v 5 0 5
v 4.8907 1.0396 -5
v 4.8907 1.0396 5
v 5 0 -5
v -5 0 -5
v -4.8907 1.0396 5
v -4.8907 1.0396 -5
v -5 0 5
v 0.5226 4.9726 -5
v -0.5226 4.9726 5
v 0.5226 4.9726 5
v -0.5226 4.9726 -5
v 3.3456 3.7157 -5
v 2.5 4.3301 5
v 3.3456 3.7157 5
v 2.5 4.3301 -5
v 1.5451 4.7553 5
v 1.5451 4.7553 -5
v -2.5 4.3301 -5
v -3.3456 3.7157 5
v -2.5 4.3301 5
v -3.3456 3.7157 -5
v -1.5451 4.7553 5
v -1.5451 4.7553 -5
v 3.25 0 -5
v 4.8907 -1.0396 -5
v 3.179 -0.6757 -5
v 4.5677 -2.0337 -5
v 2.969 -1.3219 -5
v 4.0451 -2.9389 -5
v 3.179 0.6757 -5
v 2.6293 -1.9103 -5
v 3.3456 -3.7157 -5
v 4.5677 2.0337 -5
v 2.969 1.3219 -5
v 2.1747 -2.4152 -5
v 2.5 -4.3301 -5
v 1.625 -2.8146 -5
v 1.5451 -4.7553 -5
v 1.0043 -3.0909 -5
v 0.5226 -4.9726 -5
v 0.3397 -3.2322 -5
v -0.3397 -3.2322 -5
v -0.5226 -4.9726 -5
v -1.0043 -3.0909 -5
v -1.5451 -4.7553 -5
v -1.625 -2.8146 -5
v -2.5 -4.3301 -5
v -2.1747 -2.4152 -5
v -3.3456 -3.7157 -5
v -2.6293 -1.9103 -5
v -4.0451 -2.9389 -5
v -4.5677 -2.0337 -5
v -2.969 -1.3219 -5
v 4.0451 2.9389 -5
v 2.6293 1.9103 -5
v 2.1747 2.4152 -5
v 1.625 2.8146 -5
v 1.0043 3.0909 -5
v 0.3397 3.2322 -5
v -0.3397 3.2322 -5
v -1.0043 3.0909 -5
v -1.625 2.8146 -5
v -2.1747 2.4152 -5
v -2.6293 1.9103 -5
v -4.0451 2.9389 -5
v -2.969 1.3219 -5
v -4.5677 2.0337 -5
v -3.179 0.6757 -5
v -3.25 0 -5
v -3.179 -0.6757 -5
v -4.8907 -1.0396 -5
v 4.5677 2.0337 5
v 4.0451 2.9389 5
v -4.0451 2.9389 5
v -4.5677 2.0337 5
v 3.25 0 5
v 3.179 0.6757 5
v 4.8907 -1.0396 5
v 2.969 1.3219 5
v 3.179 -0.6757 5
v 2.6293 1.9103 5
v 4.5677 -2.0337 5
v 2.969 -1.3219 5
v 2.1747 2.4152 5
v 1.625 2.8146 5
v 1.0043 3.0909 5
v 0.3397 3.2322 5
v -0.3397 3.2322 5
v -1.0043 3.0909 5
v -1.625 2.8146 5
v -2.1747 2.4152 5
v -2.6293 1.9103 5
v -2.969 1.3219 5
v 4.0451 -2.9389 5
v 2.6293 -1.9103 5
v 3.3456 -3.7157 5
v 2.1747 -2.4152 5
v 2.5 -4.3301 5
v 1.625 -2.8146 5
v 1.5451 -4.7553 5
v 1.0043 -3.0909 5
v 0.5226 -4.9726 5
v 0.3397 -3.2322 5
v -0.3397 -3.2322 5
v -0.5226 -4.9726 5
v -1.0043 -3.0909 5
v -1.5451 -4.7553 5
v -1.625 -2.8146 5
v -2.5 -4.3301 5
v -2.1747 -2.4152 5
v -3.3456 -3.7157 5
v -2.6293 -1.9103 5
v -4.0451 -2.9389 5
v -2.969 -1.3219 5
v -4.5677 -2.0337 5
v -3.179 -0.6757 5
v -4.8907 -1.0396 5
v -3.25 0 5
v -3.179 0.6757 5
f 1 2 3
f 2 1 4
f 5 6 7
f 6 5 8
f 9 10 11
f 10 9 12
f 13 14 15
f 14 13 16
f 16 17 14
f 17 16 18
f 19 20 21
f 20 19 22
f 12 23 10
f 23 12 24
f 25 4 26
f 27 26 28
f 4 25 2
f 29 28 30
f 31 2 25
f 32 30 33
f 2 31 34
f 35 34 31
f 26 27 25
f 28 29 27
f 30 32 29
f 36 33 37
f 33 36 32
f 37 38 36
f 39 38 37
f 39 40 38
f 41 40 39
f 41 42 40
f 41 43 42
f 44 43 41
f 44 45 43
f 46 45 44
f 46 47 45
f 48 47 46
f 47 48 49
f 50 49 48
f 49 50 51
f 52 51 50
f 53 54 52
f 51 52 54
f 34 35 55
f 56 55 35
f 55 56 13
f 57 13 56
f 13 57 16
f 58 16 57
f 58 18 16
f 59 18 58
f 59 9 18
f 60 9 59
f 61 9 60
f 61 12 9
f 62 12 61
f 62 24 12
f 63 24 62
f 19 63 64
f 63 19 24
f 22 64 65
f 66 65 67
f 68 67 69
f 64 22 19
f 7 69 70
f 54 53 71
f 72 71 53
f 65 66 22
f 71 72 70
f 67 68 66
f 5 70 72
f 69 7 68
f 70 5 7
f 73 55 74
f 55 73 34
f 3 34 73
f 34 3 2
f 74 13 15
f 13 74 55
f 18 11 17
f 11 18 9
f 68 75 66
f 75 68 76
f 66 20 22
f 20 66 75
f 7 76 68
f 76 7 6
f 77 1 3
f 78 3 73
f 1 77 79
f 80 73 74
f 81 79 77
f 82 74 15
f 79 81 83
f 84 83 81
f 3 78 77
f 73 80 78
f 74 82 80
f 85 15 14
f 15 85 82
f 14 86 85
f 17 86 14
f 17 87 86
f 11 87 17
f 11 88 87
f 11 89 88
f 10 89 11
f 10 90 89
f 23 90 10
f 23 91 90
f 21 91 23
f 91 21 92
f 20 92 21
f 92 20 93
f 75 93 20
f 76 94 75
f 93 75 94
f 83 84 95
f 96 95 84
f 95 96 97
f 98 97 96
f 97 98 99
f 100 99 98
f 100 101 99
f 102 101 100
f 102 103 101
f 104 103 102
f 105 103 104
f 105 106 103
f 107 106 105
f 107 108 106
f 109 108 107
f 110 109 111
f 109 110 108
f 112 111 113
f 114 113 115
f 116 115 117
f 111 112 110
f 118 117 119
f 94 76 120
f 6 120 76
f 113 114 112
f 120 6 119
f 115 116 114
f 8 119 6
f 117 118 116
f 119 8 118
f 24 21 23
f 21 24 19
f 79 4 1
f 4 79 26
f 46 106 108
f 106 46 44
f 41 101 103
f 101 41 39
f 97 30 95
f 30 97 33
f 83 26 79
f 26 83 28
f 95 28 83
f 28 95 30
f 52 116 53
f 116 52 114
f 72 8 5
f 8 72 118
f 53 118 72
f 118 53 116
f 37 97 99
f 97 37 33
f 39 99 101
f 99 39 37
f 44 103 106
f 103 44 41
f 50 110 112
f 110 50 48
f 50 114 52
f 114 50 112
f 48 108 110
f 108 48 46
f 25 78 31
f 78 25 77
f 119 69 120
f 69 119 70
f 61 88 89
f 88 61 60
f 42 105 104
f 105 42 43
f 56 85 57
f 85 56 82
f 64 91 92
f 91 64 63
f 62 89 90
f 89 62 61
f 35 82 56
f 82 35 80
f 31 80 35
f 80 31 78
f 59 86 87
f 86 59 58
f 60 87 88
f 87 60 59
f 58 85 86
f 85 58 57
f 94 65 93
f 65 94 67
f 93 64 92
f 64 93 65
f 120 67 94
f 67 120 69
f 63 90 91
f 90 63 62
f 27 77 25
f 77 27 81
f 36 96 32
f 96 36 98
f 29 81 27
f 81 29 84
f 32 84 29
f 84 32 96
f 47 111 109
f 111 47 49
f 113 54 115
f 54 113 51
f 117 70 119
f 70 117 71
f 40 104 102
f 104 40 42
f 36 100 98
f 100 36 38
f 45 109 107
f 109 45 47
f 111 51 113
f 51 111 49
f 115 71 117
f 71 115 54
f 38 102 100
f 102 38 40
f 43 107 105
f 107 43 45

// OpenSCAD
difference(){
    cylinder(r=5, h=10, center=true, $fs=0.1);
    cylinder(r=3.25, h=10, center=true, $fs=0.1);
}
